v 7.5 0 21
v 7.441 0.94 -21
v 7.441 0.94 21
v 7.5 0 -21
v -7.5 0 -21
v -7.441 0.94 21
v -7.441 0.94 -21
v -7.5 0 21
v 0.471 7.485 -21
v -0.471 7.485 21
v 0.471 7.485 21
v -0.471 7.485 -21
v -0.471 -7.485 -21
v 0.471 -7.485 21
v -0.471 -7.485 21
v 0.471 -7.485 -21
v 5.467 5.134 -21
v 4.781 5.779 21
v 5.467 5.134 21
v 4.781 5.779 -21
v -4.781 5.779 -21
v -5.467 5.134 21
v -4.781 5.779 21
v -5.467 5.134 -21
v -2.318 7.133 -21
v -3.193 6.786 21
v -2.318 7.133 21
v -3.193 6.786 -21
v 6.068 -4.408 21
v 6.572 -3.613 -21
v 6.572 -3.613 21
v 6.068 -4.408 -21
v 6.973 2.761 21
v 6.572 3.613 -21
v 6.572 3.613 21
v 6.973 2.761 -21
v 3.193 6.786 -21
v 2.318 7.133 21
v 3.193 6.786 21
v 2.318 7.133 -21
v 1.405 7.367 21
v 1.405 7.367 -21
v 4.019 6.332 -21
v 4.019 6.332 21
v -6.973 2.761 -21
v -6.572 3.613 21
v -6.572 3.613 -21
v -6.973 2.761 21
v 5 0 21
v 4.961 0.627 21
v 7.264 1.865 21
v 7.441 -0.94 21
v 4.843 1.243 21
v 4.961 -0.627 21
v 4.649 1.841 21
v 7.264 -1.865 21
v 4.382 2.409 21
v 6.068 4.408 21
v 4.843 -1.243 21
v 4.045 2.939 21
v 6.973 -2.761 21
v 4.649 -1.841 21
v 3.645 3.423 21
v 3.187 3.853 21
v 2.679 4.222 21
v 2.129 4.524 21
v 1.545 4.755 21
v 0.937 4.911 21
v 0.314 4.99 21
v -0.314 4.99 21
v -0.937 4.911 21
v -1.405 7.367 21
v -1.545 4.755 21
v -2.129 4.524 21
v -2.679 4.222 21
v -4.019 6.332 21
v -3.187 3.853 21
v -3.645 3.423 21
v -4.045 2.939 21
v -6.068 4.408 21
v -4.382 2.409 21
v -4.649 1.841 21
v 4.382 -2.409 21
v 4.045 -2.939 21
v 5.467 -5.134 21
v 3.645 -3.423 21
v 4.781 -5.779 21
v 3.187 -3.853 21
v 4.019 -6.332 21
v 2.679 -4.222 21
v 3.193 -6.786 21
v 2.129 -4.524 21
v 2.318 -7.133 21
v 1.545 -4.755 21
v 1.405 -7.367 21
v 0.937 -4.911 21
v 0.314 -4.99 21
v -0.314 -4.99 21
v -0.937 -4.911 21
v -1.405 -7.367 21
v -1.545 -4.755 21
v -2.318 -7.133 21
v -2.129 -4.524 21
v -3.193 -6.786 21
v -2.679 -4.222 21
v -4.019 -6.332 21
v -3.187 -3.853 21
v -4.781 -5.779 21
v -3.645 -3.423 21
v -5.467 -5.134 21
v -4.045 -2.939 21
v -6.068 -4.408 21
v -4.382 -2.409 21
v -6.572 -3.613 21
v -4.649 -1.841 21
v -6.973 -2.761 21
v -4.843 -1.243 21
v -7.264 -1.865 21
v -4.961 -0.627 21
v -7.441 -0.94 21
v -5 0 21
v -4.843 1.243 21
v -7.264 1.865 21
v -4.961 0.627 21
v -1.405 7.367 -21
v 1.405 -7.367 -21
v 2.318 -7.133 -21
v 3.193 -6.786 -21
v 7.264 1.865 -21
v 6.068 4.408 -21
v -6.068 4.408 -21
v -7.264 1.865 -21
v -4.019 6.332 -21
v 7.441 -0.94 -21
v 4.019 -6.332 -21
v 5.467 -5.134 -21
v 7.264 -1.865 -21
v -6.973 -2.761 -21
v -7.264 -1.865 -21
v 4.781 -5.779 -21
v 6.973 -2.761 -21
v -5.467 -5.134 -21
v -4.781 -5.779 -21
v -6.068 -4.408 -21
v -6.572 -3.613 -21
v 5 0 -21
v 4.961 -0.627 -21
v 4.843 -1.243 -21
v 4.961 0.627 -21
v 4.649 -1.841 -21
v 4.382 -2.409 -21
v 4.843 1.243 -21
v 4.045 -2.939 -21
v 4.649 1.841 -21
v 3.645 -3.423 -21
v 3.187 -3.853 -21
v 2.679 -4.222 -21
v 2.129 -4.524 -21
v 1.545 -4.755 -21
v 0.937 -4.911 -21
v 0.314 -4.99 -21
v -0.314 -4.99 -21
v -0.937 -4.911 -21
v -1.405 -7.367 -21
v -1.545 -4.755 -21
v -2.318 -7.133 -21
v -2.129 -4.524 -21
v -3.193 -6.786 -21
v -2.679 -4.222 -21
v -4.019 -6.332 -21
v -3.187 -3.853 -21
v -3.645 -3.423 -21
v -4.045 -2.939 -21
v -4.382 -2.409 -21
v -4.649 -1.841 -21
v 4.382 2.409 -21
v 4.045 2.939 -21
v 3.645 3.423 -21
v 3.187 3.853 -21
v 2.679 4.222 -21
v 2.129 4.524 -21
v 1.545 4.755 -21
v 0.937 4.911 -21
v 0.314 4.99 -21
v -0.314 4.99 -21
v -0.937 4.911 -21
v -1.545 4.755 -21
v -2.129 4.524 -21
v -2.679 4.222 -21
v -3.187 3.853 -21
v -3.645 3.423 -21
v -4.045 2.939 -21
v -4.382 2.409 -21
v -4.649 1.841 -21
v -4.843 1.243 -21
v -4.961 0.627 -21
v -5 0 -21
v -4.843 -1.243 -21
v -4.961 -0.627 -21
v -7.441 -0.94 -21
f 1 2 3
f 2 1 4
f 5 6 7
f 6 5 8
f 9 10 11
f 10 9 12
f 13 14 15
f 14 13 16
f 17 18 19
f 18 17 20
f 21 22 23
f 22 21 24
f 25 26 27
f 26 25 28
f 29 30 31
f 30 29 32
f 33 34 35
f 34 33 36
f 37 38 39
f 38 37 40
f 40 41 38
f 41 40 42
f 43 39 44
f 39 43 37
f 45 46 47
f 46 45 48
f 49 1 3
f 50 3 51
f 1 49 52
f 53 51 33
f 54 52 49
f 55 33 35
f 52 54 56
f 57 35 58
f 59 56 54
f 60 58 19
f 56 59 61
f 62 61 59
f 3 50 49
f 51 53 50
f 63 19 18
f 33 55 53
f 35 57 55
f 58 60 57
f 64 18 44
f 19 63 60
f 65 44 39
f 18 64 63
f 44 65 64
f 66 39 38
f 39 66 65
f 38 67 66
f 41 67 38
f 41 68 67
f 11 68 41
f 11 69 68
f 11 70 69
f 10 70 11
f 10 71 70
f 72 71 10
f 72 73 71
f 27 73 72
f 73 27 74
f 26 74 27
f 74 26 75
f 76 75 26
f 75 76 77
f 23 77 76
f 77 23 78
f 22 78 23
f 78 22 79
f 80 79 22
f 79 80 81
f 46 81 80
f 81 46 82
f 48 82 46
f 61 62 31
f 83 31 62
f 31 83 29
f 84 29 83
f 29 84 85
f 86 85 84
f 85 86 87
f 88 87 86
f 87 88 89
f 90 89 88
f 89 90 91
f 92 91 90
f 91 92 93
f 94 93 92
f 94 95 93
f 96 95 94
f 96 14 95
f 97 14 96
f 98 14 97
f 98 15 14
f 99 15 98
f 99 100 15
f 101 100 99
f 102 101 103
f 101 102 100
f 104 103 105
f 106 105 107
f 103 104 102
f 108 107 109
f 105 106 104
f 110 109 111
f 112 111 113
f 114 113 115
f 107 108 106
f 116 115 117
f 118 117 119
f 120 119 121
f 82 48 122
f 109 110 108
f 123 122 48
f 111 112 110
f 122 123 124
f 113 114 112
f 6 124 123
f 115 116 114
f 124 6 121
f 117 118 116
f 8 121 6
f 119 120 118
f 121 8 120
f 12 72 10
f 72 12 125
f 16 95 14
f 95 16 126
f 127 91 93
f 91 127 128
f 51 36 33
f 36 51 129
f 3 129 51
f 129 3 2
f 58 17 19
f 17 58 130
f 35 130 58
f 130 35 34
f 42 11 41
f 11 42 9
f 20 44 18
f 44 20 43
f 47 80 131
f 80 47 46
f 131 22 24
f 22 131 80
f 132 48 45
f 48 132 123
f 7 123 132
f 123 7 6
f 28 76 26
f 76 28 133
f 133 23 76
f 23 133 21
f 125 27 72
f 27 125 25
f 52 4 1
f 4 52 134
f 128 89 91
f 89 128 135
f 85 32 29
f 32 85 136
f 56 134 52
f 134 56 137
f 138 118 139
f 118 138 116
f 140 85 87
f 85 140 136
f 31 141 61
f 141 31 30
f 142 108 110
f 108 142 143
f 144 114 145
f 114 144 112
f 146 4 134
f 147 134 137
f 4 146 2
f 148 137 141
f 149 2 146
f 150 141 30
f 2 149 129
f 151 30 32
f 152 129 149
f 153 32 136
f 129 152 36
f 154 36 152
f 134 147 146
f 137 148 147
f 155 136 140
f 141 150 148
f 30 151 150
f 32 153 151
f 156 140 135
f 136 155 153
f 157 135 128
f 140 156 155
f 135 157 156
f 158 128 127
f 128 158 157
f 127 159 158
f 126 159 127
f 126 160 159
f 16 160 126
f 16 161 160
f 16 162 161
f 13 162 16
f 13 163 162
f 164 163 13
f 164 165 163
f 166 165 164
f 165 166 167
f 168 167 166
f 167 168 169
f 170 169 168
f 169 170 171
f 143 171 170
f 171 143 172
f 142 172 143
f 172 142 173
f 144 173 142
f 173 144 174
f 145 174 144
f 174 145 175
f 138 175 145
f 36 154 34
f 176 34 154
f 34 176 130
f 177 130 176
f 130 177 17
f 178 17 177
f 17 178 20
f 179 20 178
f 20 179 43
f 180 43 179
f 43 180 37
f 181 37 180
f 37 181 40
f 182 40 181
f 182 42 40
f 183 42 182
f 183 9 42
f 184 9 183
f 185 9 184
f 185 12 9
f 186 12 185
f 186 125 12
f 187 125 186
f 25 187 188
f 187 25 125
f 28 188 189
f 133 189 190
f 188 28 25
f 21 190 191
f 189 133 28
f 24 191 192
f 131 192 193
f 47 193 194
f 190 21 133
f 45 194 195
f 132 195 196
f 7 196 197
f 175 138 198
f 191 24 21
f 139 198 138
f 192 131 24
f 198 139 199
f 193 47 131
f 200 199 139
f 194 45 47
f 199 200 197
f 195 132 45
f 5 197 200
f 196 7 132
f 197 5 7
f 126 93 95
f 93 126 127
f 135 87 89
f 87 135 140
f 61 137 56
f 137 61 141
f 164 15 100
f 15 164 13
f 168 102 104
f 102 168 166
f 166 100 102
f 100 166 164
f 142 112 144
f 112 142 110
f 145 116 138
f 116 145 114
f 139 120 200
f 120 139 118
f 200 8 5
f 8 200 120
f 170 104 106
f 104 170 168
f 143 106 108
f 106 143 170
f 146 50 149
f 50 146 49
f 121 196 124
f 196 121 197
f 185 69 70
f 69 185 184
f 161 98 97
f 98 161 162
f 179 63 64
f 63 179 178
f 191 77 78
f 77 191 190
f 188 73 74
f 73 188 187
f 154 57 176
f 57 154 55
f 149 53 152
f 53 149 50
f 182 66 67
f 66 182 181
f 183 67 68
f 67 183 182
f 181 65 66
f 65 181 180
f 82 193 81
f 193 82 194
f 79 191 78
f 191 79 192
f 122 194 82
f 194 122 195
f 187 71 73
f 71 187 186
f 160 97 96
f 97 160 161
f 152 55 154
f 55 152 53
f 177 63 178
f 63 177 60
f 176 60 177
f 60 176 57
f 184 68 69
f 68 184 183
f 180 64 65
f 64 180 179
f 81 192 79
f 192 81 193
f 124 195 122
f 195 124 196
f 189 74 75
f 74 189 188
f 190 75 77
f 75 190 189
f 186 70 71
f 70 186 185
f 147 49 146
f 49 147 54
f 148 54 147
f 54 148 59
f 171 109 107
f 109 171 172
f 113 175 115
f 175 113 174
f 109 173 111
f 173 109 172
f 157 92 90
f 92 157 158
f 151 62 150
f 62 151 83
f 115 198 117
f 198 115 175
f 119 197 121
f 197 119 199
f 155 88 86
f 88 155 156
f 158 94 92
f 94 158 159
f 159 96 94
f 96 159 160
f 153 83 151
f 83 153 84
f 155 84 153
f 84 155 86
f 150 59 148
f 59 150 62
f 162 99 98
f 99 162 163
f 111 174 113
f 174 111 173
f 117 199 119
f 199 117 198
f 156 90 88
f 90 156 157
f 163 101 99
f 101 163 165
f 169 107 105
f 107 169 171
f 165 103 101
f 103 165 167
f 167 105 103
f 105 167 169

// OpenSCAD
$fn = 50;


difference() {
	union() {
		translate(v = [0, 0, -21.0000000000]) {
			cylinder(h = 42, r = 7.5000000000);
		}
	}
	union() {
		translate(v = [0, 0, -100.0000000000]) {
			cylinder(h = 200, r = 5.0000000000);
		}
	}
}
